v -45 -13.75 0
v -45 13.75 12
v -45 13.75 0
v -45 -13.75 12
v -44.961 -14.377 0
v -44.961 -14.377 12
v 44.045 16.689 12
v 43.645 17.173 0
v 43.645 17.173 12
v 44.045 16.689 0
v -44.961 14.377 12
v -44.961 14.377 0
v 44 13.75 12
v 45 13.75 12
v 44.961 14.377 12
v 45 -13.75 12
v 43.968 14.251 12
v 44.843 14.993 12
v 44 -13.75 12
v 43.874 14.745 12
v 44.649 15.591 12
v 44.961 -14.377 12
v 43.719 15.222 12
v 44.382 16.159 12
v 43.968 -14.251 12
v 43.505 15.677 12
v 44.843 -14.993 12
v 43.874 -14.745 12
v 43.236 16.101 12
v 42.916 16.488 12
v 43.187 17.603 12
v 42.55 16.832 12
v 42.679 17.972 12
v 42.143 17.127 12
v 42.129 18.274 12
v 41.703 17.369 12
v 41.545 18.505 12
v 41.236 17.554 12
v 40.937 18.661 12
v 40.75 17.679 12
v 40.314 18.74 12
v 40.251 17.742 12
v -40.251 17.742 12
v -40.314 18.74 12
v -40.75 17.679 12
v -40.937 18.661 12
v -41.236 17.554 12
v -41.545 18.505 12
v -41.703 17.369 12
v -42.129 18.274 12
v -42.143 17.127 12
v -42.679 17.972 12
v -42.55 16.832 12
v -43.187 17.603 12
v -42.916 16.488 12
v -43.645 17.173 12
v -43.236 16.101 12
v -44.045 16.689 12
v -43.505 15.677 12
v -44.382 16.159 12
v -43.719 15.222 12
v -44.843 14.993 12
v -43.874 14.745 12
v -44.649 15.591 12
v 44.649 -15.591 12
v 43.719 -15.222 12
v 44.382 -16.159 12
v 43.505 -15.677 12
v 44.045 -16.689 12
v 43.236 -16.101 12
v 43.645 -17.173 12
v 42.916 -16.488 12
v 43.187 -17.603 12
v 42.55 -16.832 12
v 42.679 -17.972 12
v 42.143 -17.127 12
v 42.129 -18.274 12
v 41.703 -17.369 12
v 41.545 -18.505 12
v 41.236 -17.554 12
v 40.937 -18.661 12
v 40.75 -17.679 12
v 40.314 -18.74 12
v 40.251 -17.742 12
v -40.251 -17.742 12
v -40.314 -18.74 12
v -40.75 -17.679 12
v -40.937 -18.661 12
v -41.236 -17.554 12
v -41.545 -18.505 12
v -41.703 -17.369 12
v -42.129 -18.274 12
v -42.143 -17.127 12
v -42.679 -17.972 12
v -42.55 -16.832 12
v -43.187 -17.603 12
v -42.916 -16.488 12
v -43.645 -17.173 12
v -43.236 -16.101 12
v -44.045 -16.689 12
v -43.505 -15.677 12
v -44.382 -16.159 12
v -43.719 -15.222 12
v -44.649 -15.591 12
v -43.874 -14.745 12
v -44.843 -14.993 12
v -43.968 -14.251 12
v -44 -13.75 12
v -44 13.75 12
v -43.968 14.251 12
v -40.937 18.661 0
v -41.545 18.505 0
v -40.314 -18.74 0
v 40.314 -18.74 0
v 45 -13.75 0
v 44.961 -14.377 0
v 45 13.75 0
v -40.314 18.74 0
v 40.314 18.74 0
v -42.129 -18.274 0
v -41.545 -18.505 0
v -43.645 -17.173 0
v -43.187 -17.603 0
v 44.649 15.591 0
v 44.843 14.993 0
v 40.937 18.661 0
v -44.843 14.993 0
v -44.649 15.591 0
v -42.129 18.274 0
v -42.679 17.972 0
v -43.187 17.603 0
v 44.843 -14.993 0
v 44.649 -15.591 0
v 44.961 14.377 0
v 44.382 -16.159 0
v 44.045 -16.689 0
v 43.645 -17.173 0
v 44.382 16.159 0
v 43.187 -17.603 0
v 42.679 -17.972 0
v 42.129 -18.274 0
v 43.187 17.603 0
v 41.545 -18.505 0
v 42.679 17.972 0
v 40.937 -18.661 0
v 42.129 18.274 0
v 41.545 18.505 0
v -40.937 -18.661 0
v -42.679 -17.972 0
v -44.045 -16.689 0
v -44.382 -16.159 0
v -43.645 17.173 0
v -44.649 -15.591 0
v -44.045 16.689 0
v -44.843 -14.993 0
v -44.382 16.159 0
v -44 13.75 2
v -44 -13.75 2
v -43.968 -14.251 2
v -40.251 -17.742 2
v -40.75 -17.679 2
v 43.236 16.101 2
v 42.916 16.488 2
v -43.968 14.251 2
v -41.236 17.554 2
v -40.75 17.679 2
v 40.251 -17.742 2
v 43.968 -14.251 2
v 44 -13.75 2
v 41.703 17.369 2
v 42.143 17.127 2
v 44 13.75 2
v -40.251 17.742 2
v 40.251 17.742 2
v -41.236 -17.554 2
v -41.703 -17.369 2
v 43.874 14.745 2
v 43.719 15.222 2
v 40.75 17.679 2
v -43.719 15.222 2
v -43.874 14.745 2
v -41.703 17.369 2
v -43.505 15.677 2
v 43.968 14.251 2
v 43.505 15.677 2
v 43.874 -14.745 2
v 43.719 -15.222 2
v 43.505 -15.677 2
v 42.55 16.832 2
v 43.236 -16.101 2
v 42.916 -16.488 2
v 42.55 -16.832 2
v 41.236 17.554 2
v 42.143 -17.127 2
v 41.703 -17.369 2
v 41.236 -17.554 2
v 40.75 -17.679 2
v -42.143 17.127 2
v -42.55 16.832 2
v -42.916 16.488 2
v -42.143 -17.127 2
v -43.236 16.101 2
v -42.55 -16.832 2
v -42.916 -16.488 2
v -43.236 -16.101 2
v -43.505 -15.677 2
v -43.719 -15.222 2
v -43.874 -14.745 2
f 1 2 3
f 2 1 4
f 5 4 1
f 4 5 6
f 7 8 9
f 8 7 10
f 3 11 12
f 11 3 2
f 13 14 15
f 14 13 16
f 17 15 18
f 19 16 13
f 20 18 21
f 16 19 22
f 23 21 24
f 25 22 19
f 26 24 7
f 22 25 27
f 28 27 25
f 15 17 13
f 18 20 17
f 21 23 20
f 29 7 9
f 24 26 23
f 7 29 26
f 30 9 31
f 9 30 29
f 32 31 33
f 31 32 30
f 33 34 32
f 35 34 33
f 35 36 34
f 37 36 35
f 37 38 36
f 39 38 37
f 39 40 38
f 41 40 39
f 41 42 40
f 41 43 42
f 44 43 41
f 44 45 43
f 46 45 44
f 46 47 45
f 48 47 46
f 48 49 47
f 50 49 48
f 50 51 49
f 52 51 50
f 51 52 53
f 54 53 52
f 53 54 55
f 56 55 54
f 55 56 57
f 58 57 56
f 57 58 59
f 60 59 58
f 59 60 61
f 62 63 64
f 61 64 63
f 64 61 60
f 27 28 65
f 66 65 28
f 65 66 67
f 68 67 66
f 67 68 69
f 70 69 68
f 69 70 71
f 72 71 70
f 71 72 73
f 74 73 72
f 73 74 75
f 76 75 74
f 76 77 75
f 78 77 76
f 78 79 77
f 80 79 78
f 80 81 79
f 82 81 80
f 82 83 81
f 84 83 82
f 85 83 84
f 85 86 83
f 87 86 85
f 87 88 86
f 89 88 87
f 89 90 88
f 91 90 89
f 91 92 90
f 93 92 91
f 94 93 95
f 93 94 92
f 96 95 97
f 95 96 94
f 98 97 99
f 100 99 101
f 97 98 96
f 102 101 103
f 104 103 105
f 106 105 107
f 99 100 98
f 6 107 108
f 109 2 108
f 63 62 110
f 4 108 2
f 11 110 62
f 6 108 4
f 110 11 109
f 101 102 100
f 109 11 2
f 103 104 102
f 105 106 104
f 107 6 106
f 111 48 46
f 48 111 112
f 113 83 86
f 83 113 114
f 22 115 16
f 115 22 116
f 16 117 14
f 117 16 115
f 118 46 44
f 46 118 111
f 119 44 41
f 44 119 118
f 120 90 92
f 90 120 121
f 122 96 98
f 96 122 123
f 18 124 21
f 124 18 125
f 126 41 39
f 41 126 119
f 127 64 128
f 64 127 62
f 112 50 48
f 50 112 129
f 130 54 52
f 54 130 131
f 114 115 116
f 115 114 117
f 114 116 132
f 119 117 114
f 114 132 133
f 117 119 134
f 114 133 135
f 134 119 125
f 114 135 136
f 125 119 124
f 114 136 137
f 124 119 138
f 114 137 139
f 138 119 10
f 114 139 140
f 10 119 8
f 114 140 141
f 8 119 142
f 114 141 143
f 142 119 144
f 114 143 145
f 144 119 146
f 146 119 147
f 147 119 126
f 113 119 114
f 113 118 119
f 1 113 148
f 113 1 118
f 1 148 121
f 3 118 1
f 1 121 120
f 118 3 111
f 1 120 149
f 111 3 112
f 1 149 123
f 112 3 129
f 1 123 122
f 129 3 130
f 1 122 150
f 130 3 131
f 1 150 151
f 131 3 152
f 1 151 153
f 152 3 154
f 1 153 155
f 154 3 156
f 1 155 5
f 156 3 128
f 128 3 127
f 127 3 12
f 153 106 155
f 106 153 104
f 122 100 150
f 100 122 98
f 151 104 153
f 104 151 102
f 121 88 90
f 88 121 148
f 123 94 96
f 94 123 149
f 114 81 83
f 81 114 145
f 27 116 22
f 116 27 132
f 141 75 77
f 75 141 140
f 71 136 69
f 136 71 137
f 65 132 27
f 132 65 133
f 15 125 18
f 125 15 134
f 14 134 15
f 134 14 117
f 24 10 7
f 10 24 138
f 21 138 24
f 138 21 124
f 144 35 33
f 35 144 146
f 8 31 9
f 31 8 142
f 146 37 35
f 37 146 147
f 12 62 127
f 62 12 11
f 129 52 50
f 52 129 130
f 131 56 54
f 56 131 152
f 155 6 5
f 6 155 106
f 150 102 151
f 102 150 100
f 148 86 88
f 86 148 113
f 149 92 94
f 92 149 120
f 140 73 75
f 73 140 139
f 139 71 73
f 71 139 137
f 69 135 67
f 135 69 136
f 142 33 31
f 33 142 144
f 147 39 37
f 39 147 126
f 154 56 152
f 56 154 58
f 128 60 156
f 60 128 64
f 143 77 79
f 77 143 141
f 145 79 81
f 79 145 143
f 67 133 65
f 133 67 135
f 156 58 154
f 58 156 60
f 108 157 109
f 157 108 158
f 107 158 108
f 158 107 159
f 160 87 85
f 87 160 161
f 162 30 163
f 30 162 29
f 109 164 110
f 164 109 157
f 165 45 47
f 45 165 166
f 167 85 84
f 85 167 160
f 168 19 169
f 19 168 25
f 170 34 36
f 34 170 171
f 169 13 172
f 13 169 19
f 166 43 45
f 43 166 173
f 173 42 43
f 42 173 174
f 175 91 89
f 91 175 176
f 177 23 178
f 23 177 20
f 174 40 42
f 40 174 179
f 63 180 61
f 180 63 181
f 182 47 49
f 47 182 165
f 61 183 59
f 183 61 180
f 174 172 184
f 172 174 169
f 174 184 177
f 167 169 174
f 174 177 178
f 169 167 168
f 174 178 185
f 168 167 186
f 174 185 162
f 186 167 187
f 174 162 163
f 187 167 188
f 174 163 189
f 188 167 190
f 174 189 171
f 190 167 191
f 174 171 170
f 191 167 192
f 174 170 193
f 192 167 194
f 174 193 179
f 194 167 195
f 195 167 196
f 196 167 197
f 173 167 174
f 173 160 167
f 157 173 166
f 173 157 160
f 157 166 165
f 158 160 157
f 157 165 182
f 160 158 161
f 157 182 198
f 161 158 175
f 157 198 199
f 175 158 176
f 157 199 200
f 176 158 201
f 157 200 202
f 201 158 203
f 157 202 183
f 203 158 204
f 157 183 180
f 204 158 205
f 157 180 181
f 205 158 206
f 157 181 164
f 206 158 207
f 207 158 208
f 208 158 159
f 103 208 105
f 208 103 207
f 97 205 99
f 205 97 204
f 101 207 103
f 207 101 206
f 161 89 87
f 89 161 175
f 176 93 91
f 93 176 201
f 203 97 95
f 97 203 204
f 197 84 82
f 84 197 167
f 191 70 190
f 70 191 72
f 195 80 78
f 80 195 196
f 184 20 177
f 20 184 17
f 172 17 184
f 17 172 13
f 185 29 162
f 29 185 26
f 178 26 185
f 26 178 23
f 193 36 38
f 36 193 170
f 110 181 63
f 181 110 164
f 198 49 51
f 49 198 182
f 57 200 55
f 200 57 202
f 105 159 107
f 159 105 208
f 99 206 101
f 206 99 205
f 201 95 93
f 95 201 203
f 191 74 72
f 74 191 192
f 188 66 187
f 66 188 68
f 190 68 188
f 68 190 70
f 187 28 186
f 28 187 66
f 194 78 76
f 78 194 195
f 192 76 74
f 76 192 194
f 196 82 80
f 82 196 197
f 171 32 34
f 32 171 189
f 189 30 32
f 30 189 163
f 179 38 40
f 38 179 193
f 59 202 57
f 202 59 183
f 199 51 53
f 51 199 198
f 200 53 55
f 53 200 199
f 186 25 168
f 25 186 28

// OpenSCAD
$fn = 50;


difference() {
	union() {
		hull() {
			translate(v = [-40.0000000000, 13.7500000000, 0]) {
				cylinder(h = 12, r = 5);
			}
			translate(v = [40.0000000000, 13.7500000000, 0]) {
				cylinder(h = 12, r = 5);
			}
			translate(v = [-40.0000000000, -13.7500000000, 0]) {
				cylinder(h = 12, r = 5);
			}
			translate(v = [40.0000000000, -13.7500000000, 0]) {
				cylinder(h = 12, r = 5);
			}
		}
	}
	union() {
		translate(v = [0, 0, 2]) {
			#hull() {
				translate(v = [-40.0000000000, 13.7500000000, 0]) {
					cylinder(h = 10, r = 4);
				}
				translate(v = [40.0000000000, 13.7500000000, 0]) {
					cylinder(h = 10, r = 4);
				}
				translate(v = [-40.0000000000, -13.7500000000, 0]) {
					cylinder(h = 10, r = 4);
				}
				translate(v = [40.0000000000, -13.7500000000, 0]) {
					cylinder(h = 10, r = 4);
				}
			}
		}
	}
}
